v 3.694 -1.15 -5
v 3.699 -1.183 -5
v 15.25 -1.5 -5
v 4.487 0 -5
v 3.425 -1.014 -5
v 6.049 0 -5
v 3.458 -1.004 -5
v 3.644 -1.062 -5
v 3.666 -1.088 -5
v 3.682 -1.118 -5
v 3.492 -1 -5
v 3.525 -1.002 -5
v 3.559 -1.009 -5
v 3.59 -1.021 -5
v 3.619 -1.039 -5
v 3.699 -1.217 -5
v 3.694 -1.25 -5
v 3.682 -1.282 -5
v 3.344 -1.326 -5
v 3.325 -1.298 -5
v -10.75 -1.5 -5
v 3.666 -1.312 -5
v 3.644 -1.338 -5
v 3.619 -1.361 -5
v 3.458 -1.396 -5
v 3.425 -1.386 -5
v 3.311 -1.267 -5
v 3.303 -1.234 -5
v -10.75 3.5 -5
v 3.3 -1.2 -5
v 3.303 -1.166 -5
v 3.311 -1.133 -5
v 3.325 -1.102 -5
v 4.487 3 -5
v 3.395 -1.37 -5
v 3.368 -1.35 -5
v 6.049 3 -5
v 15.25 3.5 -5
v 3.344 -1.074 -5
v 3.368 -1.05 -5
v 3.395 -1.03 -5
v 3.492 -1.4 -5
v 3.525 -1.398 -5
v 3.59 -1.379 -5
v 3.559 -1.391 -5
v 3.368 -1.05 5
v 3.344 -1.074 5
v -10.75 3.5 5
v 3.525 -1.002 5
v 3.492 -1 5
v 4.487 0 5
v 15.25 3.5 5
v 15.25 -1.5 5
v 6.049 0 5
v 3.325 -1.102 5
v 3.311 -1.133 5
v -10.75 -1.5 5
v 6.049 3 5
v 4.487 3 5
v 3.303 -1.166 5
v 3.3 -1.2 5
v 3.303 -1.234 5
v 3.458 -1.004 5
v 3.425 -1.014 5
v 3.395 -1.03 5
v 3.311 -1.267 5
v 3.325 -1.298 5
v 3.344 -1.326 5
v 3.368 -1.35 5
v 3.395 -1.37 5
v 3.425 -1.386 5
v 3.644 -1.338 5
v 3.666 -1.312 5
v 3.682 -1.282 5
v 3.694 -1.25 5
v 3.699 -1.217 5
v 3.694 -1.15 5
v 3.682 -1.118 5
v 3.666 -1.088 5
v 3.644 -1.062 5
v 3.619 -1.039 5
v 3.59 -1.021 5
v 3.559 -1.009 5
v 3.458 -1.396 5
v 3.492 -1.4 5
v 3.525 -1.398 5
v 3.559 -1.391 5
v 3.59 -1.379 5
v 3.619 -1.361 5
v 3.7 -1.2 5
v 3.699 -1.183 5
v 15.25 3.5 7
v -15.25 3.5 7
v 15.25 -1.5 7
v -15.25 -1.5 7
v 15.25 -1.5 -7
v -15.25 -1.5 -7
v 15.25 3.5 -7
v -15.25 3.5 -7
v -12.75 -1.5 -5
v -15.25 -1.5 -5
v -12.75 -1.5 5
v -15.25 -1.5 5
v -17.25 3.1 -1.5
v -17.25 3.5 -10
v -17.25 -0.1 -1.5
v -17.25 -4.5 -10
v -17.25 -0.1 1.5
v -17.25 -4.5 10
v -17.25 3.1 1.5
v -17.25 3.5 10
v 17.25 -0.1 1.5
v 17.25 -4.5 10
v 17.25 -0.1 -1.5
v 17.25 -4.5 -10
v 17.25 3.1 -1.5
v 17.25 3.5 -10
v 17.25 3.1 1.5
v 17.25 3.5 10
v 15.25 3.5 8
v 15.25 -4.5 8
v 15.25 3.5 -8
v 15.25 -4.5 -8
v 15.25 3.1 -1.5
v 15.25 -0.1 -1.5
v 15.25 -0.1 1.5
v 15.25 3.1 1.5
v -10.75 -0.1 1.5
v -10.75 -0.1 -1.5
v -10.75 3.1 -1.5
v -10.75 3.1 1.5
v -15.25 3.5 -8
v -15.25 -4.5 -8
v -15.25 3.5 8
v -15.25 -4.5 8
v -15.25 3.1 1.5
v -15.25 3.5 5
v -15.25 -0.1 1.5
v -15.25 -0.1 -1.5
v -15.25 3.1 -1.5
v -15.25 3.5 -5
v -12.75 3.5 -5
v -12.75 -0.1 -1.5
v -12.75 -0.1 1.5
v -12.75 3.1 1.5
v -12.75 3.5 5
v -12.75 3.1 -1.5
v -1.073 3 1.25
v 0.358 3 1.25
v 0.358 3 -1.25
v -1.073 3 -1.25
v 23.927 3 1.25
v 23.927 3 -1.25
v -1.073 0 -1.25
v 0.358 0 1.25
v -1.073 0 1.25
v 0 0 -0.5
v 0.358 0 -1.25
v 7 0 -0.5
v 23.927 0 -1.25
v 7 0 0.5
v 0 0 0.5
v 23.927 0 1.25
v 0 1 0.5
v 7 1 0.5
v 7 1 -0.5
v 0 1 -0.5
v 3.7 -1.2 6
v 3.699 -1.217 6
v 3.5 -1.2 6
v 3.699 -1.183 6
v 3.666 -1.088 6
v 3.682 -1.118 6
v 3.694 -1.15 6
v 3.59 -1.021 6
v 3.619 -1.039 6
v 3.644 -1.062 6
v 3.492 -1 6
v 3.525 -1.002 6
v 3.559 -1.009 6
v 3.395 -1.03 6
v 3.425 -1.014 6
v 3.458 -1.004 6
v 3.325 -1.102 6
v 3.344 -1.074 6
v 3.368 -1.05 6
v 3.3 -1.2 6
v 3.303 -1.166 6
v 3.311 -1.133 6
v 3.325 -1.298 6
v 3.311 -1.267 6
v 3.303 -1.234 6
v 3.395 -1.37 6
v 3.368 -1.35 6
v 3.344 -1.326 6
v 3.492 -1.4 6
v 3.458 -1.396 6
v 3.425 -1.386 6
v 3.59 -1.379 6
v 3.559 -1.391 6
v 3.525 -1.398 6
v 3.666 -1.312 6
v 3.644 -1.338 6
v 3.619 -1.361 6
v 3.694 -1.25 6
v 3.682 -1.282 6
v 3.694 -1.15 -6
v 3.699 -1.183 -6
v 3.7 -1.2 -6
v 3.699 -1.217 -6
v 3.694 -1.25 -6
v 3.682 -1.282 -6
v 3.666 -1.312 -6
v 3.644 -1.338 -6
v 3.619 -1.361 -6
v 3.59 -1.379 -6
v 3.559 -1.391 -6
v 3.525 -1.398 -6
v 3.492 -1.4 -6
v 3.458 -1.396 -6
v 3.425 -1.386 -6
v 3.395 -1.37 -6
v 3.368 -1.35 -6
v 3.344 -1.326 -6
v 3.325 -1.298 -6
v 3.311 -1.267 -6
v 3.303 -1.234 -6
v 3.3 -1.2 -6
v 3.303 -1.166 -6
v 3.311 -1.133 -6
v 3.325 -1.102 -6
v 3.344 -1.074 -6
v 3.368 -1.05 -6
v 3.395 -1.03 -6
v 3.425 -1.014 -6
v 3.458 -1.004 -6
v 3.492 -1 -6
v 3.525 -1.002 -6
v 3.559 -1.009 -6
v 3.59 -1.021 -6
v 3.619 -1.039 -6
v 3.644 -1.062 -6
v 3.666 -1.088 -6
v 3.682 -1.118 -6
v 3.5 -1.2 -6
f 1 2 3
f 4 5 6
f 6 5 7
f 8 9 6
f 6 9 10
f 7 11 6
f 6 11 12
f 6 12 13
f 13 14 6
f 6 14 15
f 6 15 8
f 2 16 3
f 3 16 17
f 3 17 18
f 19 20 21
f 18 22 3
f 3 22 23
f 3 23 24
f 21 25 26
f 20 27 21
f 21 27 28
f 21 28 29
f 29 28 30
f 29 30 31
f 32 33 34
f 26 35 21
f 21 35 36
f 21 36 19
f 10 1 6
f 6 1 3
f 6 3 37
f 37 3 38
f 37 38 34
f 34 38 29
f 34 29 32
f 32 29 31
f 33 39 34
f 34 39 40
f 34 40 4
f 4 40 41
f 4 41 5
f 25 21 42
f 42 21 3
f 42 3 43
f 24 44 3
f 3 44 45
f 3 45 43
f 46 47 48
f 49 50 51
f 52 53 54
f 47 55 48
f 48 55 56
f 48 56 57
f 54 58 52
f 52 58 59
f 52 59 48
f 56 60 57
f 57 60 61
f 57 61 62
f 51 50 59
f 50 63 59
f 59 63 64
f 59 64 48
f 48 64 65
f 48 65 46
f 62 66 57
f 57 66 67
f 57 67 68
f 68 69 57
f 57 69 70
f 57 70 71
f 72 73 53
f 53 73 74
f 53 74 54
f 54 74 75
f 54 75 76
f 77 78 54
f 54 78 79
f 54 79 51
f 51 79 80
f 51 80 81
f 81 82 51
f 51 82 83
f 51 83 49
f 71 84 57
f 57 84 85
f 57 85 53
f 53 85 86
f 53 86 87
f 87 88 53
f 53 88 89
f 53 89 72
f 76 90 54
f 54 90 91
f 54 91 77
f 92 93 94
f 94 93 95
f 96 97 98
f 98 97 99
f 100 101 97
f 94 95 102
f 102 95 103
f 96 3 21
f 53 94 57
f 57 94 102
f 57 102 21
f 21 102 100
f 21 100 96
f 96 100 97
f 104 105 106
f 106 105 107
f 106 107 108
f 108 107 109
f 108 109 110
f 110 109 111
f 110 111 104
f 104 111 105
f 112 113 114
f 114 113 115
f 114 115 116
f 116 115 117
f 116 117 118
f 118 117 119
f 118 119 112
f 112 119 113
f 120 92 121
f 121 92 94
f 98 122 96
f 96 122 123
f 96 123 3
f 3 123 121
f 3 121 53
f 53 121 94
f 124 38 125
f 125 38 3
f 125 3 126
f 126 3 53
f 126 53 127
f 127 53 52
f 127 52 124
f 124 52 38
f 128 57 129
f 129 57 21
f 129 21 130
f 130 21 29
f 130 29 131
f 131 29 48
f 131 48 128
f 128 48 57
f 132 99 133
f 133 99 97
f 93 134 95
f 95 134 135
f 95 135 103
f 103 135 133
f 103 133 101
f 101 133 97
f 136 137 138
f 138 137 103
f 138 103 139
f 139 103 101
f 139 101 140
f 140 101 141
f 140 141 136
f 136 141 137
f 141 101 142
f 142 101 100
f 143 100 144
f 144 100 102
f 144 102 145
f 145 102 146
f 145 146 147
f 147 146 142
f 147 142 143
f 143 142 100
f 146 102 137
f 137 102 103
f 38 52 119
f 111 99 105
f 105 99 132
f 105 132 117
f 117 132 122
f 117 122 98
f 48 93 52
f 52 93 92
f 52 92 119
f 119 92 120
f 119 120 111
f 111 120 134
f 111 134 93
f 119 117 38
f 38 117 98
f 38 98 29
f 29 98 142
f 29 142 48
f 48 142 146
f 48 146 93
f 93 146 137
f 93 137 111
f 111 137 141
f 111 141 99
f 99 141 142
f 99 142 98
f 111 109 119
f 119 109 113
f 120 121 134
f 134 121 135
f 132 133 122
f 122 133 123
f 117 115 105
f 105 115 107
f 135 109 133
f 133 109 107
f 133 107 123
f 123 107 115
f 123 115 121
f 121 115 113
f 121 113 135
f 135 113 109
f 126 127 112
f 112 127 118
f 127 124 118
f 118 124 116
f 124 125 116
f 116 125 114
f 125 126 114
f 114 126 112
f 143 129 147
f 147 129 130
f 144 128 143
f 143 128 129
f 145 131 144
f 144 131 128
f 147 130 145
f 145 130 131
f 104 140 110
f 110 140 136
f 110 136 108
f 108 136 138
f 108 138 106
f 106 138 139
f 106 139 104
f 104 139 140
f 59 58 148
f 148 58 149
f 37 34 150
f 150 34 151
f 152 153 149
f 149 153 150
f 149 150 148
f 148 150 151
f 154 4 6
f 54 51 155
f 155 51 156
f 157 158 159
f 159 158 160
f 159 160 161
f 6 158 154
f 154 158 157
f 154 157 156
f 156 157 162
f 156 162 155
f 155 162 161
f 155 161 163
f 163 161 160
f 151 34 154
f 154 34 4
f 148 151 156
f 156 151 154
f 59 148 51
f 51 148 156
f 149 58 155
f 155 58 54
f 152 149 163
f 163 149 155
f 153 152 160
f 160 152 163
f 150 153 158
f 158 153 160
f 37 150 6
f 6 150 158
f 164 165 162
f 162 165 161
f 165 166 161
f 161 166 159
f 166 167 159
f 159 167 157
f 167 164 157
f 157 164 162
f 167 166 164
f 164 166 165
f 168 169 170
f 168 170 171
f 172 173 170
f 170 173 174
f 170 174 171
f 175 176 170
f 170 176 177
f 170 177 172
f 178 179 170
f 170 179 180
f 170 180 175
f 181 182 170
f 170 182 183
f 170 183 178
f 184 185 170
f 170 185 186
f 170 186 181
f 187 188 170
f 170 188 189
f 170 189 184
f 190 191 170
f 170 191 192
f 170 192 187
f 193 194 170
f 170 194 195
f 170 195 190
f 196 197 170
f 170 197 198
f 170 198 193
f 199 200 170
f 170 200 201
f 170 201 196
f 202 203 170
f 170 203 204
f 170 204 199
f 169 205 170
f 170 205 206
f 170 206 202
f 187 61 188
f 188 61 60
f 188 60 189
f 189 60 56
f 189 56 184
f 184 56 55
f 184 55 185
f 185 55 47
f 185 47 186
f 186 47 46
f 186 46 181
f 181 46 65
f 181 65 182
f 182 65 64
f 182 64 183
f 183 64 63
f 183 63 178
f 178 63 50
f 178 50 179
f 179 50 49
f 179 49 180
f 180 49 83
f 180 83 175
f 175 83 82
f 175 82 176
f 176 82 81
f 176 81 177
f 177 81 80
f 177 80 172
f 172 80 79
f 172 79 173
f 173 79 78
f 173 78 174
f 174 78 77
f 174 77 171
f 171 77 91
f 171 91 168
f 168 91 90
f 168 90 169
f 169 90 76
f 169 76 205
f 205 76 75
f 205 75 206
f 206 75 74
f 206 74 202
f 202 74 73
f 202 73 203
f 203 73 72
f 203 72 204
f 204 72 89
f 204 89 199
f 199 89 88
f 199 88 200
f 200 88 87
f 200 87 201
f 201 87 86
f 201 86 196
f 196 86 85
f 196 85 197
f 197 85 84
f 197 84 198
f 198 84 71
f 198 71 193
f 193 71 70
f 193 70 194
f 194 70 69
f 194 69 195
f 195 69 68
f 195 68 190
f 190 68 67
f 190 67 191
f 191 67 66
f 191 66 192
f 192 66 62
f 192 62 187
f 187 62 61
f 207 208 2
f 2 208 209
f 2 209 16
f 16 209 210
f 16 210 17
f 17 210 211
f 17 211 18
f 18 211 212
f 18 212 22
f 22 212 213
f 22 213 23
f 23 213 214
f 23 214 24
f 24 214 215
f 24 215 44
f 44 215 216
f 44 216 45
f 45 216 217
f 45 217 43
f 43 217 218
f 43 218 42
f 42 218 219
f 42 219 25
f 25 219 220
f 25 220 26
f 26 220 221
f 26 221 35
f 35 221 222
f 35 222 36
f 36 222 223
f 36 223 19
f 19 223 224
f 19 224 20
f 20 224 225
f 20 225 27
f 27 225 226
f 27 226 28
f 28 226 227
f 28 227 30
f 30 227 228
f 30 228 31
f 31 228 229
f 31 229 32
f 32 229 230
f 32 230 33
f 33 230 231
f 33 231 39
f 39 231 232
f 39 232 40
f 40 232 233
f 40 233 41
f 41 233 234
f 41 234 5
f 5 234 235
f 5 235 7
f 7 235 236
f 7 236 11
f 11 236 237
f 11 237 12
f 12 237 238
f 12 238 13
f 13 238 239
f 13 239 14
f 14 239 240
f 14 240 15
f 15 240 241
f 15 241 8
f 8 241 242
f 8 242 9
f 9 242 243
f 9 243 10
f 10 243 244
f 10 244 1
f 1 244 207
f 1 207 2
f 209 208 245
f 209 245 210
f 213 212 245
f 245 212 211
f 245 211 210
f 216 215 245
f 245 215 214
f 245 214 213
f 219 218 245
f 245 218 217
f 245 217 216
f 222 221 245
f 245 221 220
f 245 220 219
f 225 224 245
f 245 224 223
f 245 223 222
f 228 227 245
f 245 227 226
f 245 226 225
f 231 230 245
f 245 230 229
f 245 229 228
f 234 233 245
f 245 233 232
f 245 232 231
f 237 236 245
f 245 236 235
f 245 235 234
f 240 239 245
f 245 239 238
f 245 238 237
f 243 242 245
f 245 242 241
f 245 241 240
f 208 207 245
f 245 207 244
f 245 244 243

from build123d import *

# Parameters (mm, degrees)
BOSS_EXTRUDE2_DEPTH      = 3.5
BOSS_EXTRUDE2_DEPTH_BACK = 1.5
SKETCH2_W                = 34.5
SKETCH2_H                = 14
SKETCH2_W_2              = 2.5
SKETCH2_H_2              = 10
SKETCH2_W_3              = 26
BOSS_EXTRUDE5_DEPTH      = 3.5
BOSS_EXTRUDE5_DEPTH_BACK = 4.5
SKETCH9_W                = 30.5
SKETCH9_H                = 16
CUT_EXTRUDE1_DEPTH       = 2
CUT_EXTRUDE2_DEPTH       = 8
BOSS_EXTRUDE4_DEPTH      = 3
SKETCH5_W                = 7
SKETCH5_H                = 1
CUT_EXTRUDE3_DEPTH       = 1
CUT_EXTRUDE4_DEPTH       = 6
CUT_EXTRUDE4_DEPTH_BACK  = 6
SKETCH7_R                = 0.2


with BuildPart() as part:
    # Sketch2 → Boss-Extrude2 (new, two sides: drawn at the far end of the back side and taken through both)
    with BuildSketch(Plane(origin=(0, 0, 0), x_dir=(1, 0, 0), z_dir=(0, 1, 0)).offset(-BOSS_EXTRUDE2_DEPTH_BACK)):
        Rectangle(SKETCH2_W, SKETCH2_H)
        with Locations((-14, 0)):
            Rectangle(SKETCH2_W_2, SKETCH2_H_2, mode=Mode.SUBTRACT)
        with Locations((2.25, 0)):
            Rectangle(SKETCH2_W_3, SKETCH2_H_2, mode=Mode.SUBTRACT)
    extrude(amount=BOSS_EXTRUDE2_DEPTH + BOSS_EXTRUDE2_DEPTH_BACK)

    # Sketch9 → Boss-Extrude5 (add, two sides: drawn at the far end of the back side and taken through both)
    with BuildSketch(Plane(origin=(0, 0, 0), x_dir=(1, 0, 0), z_dir=(0, 1, 0)).offset(-BOSS_EXTRUDE5_DEPTH_BACK)):
        Polygon((17.25, -10), (17.25, 8), (17.25, 10), (15.25, 10), (-15.25, 10), (-17.25, 10), (-17.25, 8), (-17.25, -10), align=None)
        Rectangle(SKETCH9_W, SKETCH9_H, mode=Mode.SUBTRACT)
    extrude(amount=BOSS_EXTRUDE5_DEPTH + BOSS_EXTRUDE5_DEPTH_BACK)

    # Sketch3 → Cut-Extrude1 (cut)
    with BuildSketch(Plane(origin=(17.25, 0, 0), x_dir=(0, 0, -1), z_dir=(1, 0, 0))):
        Polygon((-1.5, 0), (-1.5, 3.1), (1.5, 3.1), (1.5, 0), (1.5, -0.1), (-1.5, -0.1), align=None)
    extrude(amount=-CUT_EXTRUDE1_DEPTH, mode=Mode.SUBTRACT)

    # Sketch4 → Cut-Extrude2 (cut)
    with BuildSketch(Plane.ZY.offset(17.25)):
        Polygon((-1.5, -0.1), (1.5, -0.1), (1.5, 0), (1.5, 3.1), (-1.5, 3.1), (-1.5, 0), align=None)
    extrude(amount=-CUT_EXTRUDE2_DEPTH, mode=Mode.SUBTRACT)

    # Sketch1 → Boss-Extrude4 (add)
    with BuildSketch(Plane(origin=(0, 0, 0), x_dir=(1, 0, 0), z_dir=(0, 1, 0))):
        Polygon((-1.07297499, -1.25), (4.486628642, -5), (4.486628642, -6), (6.049148178, -6), (6.049148178, -5), (0.35765833, -1.25), (1.07297499, -1.25), (23.92702501, -1.25), (23.92702501, 1.25), (1.07297499, 1.25), (0.35765833, 1.25), (6.049148178, 5), (6.049148178, 6), (4.486628642, 6), (4.486628642, 5), (-1.07297499, 1.25), align=None)
    extrude(amount=BOSS_EXTRUDE4_DEPTH)

    # Sketch5 → Cut-Extrude3 (cut)
    with BuildSketch(Plane.XZ):
        with Locations((3.5, 0)):
            Rectangle(SKETCH5_W, SKETCH5_H)
    extrude(amount=-CUT_EXTRUDE3_DEPTH, mode=Mode.SUBTRACT)

    # Sketch7 → Cut-Extrude4 (cut, two sides: drawn at the far end of the back side and taken through both)
    with BuildSketch(Plane.XY.offset(-CUT_EXTRUDE4_DEPTH_BACK)):
        with Locations((3.5, -1.2)):
            Circle(SKETCH7_R)
    extrude(amount=CUT_EXTRUDE4_DEPTH + CUT_EXTRUDE4_DEPTH_BACK, mode=Mode.SUBTRACT)


solid = part.part
